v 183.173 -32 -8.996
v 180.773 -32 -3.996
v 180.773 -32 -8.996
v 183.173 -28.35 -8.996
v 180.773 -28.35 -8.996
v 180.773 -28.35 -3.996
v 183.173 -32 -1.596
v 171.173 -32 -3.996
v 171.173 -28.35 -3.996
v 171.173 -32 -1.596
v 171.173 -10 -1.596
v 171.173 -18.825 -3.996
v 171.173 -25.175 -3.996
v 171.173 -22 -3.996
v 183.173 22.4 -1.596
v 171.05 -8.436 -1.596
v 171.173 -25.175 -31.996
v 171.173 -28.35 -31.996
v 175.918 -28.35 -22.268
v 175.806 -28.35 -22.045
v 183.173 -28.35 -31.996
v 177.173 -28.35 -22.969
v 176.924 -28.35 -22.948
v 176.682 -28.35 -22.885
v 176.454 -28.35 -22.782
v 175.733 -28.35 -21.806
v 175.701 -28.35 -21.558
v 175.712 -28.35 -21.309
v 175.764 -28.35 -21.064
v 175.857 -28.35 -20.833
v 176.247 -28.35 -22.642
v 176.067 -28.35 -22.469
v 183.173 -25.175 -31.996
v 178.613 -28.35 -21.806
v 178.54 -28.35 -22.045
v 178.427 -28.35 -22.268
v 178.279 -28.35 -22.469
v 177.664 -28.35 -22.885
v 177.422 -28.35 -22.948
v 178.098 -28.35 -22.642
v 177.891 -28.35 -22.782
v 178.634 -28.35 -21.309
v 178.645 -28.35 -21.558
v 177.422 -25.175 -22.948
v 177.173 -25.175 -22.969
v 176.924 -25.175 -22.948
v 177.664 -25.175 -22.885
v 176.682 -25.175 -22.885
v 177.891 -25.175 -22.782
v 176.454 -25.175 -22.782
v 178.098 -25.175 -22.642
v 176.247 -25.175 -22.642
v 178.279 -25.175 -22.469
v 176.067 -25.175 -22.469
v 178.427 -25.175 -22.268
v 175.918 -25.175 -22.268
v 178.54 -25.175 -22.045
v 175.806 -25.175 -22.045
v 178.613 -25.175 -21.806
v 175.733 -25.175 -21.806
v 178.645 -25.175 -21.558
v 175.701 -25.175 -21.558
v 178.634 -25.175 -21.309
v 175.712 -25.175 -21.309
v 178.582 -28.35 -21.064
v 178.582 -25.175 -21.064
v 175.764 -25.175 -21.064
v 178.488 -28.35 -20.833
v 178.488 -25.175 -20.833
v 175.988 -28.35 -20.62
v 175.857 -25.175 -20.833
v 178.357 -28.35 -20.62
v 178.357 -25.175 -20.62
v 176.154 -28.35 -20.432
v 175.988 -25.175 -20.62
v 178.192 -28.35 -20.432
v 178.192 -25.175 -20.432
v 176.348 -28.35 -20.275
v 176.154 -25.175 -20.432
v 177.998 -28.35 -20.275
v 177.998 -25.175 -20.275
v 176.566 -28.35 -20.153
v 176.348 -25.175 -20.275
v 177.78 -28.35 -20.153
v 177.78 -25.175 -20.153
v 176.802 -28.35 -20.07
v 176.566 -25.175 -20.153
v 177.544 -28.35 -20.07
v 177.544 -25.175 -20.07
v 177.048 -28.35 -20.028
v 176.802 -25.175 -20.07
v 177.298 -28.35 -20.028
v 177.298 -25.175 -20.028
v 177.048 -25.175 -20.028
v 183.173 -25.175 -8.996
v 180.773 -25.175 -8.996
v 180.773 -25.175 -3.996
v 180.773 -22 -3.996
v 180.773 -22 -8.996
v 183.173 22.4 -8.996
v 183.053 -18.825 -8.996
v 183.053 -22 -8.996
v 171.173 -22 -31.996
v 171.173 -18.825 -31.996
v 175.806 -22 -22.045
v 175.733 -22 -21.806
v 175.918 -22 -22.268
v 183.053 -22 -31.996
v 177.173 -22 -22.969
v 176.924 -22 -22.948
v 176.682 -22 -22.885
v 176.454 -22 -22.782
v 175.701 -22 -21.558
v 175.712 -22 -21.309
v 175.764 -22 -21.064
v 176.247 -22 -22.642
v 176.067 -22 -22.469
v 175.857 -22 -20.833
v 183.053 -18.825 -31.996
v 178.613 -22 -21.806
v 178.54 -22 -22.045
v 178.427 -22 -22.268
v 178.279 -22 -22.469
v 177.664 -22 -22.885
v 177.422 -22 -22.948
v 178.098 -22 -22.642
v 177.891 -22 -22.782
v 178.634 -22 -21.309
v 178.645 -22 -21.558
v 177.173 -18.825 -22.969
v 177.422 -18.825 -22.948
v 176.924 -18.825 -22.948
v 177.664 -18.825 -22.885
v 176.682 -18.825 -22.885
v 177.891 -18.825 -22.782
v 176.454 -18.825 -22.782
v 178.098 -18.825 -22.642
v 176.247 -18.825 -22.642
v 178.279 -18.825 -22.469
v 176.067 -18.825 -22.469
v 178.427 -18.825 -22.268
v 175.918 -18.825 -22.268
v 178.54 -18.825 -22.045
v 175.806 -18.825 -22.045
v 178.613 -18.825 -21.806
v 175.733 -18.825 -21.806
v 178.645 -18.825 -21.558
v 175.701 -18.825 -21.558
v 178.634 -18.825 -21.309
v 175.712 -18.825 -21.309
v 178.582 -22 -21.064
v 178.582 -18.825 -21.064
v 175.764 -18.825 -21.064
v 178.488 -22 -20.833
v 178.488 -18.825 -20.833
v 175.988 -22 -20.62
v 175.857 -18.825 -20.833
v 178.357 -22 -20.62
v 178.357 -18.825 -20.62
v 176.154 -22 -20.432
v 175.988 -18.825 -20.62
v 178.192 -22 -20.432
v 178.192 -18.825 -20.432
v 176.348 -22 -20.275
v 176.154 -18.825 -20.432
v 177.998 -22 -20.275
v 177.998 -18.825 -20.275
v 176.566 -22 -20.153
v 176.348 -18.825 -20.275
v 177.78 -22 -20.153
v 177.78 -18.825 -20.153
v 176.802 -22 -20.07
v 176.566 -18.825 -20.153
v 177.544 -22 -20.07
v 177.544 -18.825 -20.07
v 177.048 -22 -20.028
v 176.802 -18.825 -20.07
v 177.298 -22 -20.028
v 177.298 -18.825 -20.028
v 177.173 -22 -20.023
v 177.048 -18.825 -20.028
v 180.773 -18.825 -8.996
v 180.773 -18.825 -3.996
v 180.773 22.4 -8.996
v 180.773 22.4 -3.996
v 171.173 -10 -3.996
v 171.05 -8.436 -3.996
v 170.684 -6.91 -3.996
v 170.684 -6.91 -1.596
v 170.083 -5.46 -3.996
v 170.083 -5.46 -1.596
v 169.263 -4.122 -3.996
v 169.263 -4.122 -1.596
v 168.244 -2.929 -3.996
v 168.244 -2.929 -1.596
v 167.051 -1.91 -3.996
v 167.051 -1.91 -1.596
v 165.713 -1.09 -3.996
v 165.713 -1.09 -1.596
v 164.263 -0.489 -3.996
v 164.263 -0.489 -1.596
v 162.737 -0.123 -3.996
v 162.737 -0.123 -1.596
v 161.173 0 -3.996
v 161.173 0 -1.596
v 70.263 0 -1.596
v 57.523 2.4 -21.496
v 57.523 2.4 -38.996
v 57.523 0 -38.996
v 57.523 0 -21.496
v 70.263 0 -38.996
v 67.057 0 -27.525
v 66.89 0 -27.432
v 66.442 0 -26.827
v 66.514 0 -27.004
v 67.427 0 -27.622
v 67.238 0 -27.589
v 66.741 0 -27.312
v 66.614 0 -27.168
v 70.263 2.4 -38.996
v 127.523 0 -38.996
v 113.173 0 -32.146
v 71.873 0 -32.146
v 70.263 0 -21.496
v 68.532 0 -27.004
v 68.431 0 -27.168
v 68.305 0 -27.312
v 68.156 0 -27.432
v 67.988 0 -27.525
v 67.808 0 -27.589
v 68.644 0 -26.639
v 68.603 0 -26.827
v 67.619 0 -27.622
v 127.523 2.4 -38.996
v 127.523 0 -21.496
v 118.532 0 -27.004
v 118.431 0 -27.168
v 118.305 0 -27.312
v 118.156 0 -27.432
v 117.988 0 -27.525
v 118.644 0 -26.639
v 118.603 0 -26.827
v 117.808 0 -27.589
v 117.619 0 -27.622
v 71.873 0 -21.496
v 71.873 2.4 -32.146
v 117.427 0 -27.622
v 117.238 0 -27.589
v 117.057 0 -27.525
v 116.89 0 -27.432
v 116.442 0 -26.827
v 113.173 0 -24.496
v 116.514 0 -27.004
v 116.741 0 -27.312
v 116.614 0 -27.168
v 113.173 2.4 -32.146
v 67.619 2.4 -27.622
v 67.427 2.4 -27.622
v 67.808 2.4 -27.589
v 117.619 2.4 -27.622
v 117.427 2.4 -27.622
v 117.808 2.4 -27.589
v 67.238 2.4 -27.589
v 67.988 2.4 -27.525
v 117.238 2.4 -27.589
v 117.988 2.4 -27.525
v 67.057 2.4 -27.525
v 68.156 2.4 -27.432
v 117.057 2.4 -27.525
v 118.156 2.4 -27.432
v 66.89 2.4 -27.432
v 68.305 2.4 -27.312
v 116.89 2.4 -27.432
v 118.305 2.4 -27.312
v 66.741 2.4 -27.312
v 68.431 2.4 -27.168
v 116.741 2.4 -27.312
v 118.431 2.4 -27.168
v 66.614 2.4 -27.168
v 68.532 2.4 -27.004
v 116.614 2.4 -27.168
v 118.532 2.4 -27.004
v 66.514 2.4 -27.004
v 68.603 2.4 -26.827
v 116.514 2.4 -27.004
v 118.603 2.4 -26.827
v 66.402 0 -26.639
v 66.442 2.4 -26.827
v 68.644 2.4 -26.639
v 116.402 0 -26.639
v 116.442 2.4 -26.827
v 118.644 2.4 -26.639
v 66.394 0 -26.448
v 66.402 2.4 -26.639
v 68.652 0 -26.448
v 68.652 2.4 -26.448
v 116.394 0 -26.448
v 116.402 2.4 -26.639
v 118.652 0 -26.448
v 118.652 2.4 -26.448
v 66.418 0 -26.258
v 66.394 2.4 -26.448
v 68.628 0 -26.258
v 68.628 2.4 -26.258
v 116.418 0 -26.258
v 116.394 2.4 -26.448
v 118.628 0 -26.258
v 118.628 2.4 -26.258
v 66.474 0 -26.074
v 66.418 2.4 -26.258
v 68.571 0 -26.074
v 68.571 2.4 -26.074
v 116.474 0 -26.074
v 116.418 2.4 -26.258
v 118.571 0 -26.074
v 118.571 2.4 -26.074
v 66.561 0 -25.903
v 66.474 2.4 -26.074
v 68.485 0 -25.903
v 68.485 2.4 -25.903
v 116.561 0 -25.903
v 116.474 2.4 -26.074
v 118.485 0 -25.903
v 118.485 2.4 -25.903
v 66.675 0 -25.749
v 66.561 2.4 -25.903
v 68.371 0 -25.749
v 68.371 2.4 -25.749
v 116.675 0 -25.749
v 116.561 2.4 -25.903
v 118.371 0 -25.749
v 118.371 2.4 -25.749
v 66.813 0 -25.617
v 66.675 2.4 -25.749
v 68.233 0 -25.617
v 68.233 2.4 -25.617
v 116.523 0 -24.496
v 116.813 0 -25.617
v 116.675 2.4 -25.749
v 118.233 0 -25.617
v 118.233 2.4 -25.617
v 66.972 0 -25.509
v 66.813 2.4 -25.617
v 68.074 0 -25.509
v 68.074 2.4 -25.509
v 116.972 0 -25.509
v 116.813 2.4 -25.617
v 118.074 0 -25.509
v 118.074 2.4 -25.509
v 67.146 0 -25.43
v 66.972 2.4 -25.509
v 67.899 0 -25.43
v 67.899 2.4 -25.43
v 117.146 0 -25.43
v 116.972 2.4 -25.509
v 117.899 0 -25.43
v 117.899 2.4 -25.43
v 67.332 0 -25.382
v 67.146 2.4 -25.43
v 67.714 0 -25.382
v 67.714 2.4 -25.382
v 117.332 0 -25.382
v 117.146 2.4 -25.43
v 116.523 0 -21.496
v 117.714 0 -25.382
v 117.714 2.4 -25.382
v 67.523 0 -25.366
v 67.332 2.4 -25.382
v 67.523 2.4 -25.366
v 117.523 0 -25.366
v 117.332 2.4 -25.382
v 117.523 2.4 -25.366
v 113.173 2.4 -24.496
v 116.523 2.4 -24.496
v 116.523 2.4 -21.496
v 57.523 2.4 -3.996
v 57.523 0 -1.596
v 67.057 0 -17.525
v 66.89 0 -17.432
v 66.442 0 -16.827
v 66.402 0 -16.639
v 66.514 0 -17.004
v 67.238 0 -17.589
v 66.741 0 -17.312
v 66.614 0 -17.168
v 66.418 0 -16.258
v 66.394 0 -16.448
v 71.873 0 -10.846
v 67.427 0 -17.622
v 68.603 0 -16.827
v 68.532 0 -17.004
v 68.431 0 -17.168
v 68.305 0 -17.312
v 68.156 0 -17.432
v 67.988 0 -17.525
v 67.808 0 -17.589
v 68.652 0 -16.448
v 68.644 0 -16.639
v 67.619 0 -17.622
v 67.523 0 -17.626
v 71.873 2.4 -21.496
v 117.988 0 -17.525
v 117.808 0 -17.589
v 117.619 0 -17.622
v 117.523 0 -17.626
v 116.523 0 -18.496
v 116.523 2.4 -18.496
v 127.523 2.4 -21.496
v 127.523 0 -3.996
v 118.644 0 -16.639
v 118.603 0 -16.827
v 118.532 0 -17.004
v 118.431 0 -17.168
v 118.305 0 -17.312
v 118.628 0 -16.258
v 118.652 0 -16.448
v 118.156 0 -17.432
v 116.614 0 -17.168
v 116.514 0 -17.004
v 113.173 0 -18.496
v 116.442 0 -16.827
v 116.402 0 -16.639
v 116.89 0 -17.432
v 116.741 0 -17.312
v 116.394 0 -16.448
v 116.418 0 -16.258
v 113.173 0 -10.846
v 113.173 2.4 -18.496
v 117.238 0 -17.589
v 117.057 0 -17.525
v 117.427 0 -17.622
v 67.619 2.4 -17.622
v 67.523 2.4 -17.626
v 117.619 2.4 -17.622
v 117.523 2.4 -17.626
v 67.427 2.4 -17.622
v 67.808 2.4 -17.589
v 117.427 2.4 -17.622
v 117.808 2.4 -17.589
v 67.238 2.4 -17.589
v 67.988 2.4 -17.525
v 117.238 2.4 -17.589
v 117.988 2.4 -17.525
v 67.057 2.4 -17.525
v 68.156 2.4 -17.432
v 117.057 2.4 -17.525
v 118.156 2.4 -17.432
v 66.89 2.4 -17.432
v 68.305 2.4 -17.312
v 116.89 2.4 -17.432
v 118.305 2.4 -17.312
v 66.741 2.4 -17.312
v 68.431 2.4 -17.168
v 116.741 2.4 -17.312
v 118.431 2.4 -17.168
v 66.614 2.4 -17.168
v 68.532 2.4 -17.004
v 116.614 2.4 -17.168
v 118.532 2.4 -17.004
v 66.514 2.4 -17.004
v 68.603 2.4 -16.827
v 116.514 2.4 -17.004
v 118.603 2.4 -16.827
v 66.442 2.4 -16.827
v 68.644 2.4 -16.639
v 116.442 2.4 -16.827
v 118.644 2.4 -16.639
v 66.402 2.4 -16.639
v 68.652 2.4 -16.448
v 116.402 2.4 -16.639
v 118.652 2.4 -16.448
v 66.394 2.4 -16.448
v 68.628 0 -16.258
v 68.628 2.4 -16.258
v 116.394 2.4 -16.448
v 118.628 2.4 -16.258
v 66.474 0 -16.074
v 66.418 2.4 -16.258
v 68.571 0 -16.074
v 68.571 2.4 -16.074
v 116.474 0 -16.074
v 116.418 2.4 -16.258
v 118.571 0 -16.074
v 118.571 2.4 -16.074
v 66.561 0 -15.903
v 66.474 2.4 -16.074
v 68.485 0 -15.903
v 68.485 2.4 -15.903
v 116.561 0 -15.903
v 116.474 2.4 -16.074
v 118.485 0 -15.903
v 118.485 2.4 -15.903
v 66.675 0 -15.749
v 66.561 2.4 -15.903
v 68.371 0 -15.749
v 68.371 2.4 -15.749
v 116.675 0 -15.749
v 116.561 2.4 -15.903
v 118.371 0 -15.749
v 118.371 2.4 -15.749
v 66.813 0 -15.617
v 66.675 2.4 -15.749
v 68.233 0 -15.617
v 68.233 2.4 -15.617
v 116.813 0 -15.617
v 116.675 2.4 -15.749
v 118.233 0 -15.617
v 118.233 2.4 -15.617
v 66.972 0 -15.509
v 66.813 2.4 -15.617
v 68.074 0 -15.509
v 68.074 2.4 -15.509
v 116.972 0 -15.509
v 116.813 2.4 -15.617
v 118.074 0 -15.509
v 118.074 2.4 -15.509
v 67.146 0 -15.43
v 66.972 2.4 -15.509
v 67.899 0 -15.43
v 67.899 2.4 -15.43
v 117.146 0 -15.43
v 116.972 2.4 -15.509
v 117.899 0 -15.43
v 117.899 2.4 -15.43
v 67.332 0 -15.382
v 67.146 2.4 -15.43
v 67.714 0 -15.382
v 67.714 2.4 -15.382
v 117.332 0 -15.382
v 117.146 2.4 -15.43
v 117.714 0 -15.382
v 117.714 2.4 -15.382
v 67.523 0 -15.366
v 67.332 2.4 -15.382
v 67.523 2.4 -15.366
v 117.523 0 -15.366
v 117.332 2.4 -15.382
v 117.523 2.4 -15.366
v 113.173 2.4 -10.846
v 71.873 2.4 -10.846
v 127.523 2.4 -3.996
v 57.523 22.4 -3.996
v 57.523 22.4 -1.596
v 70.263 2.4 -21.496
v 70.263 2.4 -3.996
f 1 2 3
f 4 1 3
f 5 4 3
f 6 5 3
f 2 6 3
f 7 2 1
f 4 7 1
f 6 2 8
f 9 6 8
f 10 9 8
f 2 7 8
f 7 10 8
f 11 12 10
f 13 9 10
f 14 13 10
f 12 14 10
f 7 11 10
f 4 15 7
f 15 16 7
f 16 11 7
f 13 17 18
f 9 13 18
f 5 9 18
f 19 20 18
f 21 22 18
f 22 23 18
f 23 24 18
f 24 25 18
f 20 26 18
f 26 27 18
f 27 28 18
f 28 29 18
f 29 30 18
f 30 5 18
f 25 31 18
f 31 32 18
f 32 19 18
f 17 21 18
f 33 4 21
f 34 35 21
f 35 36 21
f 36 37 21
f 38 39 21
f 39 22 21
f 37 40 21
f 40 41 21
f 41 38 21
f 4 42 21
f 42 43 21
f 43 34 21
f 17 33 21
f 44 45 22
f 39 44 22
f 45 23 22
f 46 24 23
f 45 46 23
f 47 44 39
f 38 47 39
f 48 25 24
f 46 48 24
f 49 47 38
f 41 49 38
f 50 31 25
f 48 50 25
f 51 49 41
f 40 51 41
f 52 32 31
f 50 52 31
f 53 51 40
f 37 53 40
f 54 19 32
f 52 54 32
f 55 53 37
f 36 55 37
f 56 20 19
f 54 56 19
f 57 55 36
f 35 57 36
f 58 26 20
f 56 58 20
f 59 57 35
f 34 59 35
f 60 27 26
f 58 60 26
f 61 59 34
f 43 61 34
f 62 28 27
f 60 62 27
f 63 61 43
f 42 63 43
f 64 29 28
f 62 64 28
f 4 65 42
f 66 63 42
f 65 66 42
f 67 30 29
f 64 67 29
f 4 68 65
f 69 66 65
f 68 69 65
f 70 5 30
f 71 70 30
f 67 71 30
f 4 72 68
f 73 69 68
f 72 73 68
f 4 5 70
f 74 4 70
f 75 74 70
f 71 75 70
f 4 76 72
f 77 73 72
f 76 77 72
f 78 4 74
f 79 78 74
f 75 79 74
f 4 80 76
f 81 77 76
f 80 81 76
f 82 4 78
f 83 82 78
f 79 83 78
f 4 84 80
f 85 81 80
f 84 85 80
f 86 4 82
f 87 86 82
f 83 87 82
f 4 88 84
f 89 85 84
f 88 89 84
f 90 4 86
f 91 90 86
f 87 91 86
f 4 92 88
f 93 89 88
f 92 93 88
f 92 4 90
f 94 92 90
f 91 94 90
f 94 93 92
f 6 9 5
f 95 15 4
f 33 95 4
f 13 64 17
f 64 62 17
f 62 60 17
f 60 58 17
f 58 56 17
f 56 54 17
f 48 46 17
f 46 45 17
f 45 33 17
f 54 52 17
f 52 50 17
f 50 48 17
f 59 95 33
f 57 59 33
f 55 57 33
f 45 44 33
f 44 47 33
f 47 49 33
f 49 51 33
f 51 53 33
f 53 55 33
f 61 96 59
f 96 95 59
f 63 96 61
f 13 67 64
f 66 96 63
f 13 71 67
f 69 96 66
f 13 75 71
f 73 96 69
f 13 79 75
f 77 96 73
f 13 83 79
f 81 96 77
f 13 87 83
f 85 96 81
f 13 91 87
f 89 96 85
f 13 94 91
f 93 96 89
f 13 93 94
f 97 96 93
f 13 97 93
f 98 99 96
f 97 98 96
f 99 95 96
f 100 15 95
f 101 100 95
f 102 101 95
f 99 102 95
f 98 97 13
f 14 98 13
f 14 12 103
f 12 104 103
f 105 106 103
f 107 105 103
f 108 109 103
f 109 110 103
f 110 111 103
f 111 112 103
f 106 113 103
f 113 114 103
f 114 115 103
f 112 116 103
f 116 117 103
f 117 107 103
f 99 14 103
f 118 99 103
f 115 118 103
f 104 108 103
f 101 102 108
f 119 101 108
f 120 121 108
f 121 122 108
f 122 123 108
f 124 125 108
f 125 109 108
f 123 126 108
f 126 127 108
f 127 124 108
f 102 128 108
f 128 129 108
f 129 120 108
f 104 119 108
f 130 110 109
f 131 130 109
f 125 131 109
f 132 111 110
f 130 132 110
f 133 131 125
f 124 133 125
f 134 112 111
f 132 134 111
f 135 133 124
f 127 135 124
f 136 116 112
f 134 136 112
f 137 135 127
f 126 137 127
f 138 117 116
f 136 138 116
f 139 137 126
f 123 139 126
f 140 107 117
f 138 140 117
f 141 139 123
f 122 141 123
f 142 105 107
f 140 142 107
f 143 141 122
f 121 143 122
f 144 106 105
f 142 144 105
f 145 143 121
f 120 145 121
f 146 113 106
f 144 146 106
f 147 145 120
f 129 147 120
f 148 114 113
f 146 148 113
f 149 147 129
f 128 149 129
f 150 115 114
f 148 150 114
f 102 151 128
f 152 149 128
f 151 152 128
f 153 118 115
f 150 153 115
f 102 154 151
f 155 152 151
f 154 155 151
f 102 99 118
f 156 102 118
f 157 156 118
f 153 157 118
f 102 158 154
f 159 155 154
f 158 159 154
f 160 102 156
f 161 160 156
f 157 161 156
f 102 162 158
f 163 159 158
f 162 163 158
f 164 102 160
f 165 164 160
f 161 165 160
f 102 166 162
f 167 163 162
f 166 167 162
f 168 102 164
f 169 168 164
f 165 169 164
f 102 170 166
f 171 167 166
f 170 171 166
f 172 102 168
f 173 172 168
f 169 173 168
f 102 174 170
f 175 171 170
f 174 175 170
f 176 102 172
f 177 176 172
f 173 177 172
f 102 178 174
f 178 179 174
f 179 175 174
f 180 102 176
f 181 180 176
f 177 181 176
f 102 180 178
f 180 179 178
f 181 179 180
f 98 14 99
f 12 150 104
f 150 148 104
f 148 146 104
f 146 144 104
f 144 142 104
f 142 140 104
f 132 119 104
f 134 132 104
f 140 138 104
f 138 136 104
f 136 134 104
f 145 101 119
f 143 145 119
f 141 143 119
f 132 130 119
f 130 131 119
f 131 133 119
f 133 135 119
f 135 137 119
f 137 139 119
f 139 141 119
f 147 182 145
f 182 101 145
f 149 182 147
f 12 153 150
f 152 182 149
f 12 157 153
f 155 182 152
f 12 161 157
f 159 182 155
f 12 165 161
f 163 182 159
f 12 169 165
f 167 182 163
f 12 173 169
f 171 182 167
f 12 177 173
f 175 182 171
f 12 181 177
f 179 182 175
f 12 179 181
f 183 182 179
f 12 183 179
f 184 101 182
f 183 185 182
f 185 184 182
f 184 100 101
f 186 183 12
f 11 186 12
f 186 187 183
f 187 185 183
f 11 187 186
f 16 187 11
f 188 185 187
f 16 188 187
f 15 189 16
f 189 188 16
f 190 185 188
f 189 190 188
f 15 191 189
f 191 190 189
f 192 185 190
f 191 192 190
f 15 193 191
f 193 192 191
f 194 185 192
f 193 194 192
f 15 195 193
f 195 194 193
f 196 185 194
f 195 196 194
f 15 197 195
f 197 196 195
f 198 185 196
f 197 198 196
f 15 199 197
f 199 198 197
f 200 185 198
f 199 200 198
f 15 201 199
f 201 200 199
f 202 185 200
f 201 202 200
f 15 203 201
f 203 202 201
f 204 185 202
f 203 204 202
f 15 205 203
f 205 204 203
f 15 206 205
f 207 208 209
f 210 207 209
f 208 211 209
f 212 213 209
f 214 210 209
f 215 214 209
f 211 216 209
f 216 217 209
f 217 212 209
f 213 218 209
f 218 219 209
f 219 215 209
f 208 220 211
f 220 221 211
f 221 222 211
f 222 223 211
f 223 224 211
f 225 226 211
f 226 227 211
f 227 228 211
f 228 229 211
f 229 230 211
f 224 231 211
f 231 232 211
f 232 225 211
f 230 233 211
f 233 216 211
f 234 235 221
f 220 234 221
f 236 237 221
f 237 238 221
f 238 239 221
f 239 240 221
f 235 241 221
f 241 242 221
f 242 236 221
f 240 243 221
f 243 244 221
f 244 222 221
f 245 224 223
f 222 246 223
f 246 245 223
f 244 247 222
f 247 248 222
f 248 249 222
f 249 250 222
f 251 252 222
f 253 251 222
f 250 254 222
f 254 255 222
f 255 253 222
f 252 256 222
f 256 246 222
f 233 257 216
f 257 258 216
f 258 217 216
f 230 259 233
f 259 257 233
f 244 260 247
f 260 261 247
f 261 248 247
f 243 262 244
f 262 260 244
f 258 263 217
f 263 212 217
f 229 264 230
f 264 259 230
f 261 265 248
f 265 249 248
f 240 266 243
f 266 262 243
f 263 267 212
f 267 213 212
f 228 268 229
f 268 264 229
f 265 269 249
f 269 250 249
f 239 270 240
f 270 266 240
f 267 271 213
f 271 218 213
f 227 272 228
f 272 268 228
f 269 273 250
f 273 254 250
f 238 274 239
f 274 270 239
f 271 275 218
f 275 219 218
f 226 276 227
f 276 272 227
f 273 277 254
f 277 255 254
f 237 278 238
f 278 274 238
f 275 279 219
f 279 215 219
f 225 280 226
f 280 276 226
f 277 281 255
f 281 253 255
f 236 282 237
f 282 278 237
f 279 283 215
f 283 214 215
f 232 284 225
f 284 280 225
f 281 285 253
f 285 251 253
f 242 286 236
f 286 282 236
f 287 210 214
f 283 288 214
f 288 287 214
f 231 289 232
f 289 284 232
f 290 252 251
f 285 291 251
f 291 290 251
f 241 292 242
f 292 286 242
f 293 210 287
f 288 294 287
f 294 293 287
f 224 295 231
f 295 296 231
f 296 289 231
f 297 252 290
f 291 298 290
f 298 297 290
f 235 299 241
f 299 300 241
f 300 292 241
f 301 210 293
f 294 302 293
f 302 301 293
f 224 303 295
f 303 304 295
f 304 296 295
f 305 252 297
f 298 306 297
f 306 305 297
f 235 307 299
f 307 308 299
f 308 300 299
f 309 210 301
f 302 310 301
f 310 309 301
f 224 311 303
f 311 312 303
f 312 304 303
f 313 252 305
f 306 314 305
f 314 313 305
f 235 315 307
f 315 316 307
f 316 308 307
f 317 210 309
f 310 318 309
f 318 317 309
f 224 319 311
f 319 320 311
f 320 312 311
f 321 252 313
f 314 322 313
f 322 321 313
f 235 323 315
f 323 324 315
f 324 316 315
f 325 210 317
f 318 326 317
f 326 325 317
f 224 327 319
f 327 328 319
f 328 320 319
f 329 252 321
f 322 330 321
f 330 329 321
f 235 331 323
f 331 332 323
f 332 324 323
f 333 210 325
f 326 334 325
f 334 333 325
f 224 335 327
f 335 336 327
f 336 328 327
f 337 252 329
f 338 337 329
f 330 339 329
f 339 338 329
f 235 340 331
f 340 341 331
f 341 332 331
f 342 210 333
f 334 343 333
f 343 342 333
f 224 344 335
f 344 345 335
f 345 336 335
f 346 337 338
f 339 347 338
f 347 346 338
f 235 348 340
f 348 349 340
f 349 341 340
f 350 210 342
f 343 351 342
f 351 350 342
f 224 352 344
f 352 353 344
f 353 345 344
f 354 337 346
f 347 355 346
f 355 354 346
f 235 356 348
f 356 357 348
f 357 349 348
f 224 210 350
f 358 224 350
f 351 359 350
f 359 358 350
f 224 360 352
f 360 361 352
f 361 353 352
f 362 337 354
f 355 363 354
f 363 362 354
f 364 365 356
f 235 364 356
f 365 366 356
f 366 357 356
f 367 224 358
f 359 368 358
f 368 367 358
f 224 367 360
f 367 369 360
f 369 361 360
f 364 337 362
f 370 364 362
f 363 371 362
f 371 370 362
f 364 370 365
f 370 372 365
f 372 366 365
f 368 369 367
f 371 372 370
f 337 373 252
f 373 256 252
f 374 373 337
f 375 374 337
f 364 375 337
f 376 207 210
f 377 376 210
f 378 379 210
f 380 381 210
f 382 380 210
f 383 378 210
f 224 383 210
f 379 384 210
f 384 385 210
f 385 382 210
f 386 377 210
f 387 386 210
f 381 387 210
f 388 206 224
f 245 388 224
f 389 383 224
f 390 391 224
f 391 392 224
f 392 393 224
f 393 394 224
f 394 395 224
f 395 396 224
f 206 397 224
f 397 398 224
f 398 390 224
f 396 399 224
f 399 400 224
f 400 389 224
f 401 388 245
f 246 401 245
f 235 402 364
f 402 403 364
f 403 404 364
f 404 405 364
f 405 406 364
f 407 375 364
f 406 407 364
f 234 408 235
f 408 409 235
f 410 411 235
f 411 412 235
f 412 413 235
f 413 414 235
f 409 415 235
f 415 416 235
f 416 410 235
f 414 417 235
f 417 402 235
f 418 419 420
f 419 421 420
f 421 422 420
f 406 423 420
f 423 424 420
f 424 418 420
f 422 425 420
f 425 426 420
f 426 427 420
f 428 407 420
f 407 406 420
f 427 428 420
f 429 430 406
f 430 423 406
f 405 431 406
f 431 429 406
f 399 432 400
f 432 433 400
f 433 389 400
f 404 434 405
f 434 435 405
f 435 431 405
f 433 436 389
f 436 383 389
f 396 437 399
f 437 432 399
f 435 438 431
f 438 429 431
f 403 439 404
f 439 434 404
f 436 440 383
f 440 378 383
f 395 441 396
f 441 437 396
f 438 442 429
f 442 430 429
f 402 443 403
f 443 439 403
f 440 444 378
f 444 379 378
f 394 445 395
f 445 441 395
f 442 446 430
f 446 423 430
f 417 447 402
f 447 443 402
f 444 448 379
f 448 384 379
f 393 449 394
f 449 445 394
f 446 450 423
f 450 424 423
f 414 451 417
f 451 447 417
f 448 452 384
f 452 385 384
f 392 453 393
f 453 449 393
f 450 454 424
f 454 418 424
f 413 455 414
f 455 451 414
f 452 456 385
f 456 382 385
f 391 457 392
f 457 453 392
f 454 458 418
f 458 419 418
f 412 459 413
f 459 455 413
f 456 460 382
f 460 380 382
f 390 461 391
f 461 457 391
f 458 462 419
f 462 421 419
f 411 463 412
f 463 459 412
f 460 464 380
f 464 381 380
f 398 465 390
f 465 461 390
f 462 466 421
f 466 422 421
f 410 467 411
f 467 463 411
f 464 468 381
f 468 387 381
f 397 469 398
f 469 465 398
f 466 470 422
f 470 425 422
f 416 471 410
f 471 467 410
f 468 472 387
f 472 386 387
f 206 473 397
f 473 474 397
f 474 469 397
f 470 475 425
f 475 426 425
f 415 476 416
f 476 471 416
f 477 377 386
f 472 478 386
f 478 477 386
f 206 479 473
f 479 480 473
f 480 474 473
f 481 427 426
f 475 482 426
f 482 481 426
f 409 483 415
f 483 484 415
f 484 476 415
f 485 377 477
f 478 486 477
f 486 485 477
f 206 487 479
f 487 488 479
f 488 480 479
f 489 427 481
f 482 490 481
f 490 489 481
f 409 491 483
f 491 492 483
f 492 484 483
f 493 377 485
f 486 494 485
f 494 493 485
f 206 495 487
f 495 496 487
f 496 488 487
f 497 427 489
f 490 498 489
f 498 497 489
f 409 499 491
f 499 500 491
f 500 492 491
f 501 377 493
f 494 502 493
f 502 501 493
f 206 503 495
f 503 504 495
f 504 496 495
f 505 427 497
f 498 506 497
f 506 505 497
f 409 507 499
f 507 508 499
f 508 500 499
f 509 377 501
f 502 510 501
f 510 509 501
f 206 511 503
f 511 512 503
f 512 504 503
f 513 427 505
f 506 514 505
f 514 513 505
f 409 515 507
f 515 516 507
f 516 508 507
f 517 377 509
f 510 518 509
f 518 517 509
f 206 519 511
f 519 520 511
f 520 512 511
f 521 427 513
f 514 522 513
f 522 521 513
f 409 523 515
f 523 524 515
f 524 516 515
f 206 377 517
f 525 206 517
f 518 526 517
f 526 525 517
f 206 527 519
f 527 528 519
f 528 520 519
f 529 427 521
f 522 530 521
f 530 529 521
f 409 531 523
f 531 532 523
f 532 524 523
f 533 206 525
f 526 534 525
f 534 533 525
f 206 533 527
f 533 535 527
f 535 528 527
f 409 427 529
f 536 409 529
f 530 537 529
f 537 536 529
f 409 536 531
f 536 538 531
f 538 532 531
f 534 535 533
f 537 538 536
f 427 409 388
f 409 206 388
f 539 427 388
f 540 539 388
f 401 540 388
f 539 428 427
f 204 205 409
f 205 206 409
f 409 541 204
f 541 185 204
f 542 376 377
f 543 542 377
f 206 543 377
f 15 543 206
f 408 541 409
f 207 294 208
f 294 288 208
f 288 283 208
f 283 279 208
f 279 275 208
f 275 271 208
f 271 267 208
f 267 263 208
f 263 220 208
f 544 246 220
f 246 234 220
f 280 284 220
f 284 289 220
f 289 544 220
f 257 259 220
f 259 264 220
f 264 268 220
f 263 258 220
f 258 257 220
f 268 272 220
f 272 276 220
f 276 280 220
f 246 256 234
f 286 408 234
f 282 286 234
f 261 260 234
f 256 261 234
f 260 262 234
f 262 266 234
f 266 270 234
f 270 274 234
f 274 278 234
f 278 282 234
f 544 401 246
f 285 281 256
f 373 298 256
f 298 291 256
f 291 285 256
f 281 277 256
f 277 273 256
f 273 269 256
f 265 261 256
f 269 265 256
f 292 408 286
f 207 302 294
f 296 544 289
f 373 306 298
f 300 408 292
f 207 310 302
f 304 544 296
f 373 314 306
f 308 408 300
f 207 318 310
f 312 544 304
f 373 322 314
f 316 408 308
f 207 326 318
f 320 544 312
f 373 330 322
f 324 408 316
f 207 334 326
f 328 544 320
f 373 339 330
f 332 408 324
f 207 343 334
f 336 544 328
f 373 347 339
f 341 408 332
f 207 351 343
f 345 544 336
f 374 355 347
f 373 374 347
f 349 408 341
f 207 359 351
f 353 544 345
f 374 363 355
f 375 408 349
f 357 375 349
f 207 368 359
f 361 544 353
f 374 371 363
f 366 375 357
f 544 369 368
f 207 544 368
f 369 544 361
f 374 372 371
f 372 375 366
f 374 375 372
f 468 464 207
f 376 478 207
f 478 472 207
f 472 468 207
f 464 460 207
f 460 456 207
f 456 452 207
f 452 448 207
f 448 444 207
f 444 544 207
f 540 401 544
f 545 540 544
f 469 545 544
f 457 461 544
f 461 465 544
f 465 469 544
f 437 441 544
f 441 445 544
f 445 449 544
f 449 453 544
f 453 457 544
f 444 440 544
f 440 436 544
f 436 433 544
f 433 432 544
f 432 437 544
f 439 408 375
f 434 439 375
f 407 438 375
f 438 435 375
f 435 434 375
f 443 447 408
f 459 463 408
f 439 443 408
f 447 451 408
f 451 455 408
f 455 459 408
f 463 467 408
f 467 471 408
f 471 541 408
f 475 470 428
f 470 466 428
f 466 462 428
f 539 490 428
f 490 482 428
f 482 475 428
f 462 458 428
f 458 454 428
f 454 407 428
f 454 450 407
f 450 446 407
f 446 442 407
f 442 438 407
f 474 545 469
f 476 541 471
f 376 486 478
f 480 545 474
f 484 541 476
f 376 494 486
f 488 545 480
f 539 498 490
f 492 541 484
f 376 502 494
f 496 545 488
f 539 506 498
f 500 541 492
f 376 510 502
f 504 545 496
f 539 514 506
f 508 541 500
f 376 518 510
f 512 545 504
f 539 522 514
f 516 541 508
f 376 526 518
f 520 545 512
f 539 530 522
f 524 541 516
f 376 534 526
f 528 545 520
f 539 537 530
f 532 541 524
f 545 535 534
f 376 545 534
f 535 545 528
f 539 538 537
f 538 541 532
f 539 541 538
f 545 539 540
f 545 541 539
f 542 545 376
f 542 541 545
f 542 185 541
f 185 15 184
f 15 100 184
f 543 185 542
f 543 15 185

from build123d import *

# Parameters (mm, degrees)
SKETCH1_W               = 70
SKETCH1_H               = 35
BOSS_EXTRUDE1_DEPTH     = 2.4
SKETCH2_R               = 1.13
SKETCH2_W               = 40
SKETCH2_H               = 20
CUT_EXTRUDE1_DEPTH      = 2.4
SKETCH4_W               = 4
SKETCH4_H               = 6
CUT_EXTRUDE2_DEPTH      = 2.4
CUT_EXTRUDE3_DEPTH      = 134.373649476
CUT_EXTRUDE3_DEPTH_BACK = 134.373649476
SKETCH7_W               = 41.3
SKETCH7_H               = 21.3
SKETCH7_W_2             = 40
SKETCH7_H_2             = 20
BOSS_EXTRUDE2_DEPTH     = 2.4
SKETCH9_W               = 11.879910587
SKETCH9_H               = 3.175
SKETCH9_W_2             = 12
BOSS_EXTRUDE3_DEPTH     = 28
SKETCH10_R              = 1.4732
CUT_EXTRUDE4_DEPTH      = 30
FILLET1_R               = 10
SKETCH11_W              = 5
SKETCH11_H              = 54.4
BOSS_EXTRUDE4_DEPTH     = 2.4


with BuildPart() as part:
    # Sketch1 → Boss-Extrude1 (new body)
    with BuildSketch(Plane(origin=(0, 0, 0), x_dir=(1, 0, 0), z_dir=(0, 1, 0))):
        with Locations((92.522946176, 21.495750708)):
            Rectangle(SKETCH1_W, SKETCH1_H)
    extrude(amount=BOSS_EXTRUDE1_DEPTH)

    # Sketch2 → Cut-Extrude1 (cut)
    with BuildSketch(Plane(origin=(0, 2.4, 0), x_dir=(1, 0, 0), z_dir=(0, 1, 0))):
        with Locations(Location((67.522946176, 26.495750708, 0), (0, 0, 270))):
            Circle(SKETCH2_R)
        with Locations(Location((117.522946176, 26.495750708, 0), (0, 0, 270))):
            Circle(SKETCH2_R)
        with Locations(Location((117.522946176, 16.495750708, 0), (0, 0, 90))):
            Circle(SKETCH2_R)
        with Locations(Location((67.522946176, 16.495750708, 0), (0, 0, 90))):
            Circle(SKETCH2_R)
        with Locations((92.522946176, 21.495750708)):
            Rectangle(SKETCH2_W, SKETCH2_H)
    extrude(amount=-CUT_EXTRUDE1_DEPTH, mode=Mode.SUBTRACT)

    # Sketch4 → Cut-Extrude2 (cut)
    with BuildSketch(Plane(origin=(0, 2.4, 0), x_dir=(1, 0, 0), z_dir=(0, 1, 0))):
        with Locations((114.522946176, 21.495750708)):
            Rectangle(SKETCH4_W, SKETCH4_H)
    extrude(amount=-CUT_EXTRUDE2_DEPTH, mode=Mode.SUBTRACT)

    # Sketch7 → Cut-Extrude3 (cut, two sides: drawn at the far end of the back side and taken through both)
    with BuildSketch(Plane(origin=(0, 2.4, 0), x_dir=(1, 0, 0), z_dir=(0, 1, 0)).offset(-CUT_EXTRUDE3_DEPTH_BACK)):
        with Locations((92.522946176, 21.495750708)):
            Rectangle(SKETCH7_W, SKETCH7_H)
        with Locations((92.522946176, 21.495750708)):
            Rectangle(SKETCH7_W_2, SKETCH7_H_2, mode=Mode.SUBTRACT)
    extrude(amount=CUT_EXTRUDE3_DEPTH + CUT_EXTRUDE3_DEPTH_BACK, mode=Mode.SUBTRACT)

    # Sketch8 → Boss-Extrude2 (add)
    with BuildSketch(Plane.XY.offset(-3.995750708)):
        Polygon((57.522946176, 22.4), (183.172946176, 22.4), (183.172946176, -32), (171.172946176, -32), (171.172946176, 0), (57.522946176, 0), align=None)
    extrude(amount=BOSS_EXTRUDE2_DEPTH)

    # Sketch9 → Boss-Extrude3 (add)
    with BuildSketch(Plane(origin=(0, 0, -3.995750708), x_dir=(-1, 0, 0), z_dir=(0, 0, -1))):
        with Locations((-177.11290147, -20.4125)):
            Rectangle(SKETCH9_W, SKETCH9_H)
        with Locations((-177.172946176, -26.7625)):
            Rectangle(SKETCH9_W_2, SKETCH9_H)
    extrude(amount=BOSS_EXTRUDE3_DEPTH)

    # Sketch10 → Cut-Extrude4 (cut)
    with BuildSketch(Plane.XZ.offset(28.35)):
        with Locations(Location((177.172946176, -21.495750708, 0), (0, 0, 270))):
            Circle(SKETCH10_R)
    extrude(amount=-CUT_EXTRUDE4_DEPTH, mode=Mode.SUBTRACT)

    # Fillet1
    fillet1_edges = [part.edges().sort_by_distance(p)[0] for p in [
        (171.172946176, 0, -2.795750708),
    ]]
    fillet(fillet1_edges, radius=FILLET1_R)

    # Sketch11 → Boss-Extrude4 (add)
    with BuildSketch(Plane(origin=(183.172946176, 0, 0), x_dir=(0, 0, -1), z_dir=(1, 0, 0))):
        with Locations((6.495750708, -4.8)):
            Rectangle(SKETCH11_W, SKETCH11_H)
    extrude(amount=-BOSS_EXTRUDE4_DEPTH)


solid = part.part
